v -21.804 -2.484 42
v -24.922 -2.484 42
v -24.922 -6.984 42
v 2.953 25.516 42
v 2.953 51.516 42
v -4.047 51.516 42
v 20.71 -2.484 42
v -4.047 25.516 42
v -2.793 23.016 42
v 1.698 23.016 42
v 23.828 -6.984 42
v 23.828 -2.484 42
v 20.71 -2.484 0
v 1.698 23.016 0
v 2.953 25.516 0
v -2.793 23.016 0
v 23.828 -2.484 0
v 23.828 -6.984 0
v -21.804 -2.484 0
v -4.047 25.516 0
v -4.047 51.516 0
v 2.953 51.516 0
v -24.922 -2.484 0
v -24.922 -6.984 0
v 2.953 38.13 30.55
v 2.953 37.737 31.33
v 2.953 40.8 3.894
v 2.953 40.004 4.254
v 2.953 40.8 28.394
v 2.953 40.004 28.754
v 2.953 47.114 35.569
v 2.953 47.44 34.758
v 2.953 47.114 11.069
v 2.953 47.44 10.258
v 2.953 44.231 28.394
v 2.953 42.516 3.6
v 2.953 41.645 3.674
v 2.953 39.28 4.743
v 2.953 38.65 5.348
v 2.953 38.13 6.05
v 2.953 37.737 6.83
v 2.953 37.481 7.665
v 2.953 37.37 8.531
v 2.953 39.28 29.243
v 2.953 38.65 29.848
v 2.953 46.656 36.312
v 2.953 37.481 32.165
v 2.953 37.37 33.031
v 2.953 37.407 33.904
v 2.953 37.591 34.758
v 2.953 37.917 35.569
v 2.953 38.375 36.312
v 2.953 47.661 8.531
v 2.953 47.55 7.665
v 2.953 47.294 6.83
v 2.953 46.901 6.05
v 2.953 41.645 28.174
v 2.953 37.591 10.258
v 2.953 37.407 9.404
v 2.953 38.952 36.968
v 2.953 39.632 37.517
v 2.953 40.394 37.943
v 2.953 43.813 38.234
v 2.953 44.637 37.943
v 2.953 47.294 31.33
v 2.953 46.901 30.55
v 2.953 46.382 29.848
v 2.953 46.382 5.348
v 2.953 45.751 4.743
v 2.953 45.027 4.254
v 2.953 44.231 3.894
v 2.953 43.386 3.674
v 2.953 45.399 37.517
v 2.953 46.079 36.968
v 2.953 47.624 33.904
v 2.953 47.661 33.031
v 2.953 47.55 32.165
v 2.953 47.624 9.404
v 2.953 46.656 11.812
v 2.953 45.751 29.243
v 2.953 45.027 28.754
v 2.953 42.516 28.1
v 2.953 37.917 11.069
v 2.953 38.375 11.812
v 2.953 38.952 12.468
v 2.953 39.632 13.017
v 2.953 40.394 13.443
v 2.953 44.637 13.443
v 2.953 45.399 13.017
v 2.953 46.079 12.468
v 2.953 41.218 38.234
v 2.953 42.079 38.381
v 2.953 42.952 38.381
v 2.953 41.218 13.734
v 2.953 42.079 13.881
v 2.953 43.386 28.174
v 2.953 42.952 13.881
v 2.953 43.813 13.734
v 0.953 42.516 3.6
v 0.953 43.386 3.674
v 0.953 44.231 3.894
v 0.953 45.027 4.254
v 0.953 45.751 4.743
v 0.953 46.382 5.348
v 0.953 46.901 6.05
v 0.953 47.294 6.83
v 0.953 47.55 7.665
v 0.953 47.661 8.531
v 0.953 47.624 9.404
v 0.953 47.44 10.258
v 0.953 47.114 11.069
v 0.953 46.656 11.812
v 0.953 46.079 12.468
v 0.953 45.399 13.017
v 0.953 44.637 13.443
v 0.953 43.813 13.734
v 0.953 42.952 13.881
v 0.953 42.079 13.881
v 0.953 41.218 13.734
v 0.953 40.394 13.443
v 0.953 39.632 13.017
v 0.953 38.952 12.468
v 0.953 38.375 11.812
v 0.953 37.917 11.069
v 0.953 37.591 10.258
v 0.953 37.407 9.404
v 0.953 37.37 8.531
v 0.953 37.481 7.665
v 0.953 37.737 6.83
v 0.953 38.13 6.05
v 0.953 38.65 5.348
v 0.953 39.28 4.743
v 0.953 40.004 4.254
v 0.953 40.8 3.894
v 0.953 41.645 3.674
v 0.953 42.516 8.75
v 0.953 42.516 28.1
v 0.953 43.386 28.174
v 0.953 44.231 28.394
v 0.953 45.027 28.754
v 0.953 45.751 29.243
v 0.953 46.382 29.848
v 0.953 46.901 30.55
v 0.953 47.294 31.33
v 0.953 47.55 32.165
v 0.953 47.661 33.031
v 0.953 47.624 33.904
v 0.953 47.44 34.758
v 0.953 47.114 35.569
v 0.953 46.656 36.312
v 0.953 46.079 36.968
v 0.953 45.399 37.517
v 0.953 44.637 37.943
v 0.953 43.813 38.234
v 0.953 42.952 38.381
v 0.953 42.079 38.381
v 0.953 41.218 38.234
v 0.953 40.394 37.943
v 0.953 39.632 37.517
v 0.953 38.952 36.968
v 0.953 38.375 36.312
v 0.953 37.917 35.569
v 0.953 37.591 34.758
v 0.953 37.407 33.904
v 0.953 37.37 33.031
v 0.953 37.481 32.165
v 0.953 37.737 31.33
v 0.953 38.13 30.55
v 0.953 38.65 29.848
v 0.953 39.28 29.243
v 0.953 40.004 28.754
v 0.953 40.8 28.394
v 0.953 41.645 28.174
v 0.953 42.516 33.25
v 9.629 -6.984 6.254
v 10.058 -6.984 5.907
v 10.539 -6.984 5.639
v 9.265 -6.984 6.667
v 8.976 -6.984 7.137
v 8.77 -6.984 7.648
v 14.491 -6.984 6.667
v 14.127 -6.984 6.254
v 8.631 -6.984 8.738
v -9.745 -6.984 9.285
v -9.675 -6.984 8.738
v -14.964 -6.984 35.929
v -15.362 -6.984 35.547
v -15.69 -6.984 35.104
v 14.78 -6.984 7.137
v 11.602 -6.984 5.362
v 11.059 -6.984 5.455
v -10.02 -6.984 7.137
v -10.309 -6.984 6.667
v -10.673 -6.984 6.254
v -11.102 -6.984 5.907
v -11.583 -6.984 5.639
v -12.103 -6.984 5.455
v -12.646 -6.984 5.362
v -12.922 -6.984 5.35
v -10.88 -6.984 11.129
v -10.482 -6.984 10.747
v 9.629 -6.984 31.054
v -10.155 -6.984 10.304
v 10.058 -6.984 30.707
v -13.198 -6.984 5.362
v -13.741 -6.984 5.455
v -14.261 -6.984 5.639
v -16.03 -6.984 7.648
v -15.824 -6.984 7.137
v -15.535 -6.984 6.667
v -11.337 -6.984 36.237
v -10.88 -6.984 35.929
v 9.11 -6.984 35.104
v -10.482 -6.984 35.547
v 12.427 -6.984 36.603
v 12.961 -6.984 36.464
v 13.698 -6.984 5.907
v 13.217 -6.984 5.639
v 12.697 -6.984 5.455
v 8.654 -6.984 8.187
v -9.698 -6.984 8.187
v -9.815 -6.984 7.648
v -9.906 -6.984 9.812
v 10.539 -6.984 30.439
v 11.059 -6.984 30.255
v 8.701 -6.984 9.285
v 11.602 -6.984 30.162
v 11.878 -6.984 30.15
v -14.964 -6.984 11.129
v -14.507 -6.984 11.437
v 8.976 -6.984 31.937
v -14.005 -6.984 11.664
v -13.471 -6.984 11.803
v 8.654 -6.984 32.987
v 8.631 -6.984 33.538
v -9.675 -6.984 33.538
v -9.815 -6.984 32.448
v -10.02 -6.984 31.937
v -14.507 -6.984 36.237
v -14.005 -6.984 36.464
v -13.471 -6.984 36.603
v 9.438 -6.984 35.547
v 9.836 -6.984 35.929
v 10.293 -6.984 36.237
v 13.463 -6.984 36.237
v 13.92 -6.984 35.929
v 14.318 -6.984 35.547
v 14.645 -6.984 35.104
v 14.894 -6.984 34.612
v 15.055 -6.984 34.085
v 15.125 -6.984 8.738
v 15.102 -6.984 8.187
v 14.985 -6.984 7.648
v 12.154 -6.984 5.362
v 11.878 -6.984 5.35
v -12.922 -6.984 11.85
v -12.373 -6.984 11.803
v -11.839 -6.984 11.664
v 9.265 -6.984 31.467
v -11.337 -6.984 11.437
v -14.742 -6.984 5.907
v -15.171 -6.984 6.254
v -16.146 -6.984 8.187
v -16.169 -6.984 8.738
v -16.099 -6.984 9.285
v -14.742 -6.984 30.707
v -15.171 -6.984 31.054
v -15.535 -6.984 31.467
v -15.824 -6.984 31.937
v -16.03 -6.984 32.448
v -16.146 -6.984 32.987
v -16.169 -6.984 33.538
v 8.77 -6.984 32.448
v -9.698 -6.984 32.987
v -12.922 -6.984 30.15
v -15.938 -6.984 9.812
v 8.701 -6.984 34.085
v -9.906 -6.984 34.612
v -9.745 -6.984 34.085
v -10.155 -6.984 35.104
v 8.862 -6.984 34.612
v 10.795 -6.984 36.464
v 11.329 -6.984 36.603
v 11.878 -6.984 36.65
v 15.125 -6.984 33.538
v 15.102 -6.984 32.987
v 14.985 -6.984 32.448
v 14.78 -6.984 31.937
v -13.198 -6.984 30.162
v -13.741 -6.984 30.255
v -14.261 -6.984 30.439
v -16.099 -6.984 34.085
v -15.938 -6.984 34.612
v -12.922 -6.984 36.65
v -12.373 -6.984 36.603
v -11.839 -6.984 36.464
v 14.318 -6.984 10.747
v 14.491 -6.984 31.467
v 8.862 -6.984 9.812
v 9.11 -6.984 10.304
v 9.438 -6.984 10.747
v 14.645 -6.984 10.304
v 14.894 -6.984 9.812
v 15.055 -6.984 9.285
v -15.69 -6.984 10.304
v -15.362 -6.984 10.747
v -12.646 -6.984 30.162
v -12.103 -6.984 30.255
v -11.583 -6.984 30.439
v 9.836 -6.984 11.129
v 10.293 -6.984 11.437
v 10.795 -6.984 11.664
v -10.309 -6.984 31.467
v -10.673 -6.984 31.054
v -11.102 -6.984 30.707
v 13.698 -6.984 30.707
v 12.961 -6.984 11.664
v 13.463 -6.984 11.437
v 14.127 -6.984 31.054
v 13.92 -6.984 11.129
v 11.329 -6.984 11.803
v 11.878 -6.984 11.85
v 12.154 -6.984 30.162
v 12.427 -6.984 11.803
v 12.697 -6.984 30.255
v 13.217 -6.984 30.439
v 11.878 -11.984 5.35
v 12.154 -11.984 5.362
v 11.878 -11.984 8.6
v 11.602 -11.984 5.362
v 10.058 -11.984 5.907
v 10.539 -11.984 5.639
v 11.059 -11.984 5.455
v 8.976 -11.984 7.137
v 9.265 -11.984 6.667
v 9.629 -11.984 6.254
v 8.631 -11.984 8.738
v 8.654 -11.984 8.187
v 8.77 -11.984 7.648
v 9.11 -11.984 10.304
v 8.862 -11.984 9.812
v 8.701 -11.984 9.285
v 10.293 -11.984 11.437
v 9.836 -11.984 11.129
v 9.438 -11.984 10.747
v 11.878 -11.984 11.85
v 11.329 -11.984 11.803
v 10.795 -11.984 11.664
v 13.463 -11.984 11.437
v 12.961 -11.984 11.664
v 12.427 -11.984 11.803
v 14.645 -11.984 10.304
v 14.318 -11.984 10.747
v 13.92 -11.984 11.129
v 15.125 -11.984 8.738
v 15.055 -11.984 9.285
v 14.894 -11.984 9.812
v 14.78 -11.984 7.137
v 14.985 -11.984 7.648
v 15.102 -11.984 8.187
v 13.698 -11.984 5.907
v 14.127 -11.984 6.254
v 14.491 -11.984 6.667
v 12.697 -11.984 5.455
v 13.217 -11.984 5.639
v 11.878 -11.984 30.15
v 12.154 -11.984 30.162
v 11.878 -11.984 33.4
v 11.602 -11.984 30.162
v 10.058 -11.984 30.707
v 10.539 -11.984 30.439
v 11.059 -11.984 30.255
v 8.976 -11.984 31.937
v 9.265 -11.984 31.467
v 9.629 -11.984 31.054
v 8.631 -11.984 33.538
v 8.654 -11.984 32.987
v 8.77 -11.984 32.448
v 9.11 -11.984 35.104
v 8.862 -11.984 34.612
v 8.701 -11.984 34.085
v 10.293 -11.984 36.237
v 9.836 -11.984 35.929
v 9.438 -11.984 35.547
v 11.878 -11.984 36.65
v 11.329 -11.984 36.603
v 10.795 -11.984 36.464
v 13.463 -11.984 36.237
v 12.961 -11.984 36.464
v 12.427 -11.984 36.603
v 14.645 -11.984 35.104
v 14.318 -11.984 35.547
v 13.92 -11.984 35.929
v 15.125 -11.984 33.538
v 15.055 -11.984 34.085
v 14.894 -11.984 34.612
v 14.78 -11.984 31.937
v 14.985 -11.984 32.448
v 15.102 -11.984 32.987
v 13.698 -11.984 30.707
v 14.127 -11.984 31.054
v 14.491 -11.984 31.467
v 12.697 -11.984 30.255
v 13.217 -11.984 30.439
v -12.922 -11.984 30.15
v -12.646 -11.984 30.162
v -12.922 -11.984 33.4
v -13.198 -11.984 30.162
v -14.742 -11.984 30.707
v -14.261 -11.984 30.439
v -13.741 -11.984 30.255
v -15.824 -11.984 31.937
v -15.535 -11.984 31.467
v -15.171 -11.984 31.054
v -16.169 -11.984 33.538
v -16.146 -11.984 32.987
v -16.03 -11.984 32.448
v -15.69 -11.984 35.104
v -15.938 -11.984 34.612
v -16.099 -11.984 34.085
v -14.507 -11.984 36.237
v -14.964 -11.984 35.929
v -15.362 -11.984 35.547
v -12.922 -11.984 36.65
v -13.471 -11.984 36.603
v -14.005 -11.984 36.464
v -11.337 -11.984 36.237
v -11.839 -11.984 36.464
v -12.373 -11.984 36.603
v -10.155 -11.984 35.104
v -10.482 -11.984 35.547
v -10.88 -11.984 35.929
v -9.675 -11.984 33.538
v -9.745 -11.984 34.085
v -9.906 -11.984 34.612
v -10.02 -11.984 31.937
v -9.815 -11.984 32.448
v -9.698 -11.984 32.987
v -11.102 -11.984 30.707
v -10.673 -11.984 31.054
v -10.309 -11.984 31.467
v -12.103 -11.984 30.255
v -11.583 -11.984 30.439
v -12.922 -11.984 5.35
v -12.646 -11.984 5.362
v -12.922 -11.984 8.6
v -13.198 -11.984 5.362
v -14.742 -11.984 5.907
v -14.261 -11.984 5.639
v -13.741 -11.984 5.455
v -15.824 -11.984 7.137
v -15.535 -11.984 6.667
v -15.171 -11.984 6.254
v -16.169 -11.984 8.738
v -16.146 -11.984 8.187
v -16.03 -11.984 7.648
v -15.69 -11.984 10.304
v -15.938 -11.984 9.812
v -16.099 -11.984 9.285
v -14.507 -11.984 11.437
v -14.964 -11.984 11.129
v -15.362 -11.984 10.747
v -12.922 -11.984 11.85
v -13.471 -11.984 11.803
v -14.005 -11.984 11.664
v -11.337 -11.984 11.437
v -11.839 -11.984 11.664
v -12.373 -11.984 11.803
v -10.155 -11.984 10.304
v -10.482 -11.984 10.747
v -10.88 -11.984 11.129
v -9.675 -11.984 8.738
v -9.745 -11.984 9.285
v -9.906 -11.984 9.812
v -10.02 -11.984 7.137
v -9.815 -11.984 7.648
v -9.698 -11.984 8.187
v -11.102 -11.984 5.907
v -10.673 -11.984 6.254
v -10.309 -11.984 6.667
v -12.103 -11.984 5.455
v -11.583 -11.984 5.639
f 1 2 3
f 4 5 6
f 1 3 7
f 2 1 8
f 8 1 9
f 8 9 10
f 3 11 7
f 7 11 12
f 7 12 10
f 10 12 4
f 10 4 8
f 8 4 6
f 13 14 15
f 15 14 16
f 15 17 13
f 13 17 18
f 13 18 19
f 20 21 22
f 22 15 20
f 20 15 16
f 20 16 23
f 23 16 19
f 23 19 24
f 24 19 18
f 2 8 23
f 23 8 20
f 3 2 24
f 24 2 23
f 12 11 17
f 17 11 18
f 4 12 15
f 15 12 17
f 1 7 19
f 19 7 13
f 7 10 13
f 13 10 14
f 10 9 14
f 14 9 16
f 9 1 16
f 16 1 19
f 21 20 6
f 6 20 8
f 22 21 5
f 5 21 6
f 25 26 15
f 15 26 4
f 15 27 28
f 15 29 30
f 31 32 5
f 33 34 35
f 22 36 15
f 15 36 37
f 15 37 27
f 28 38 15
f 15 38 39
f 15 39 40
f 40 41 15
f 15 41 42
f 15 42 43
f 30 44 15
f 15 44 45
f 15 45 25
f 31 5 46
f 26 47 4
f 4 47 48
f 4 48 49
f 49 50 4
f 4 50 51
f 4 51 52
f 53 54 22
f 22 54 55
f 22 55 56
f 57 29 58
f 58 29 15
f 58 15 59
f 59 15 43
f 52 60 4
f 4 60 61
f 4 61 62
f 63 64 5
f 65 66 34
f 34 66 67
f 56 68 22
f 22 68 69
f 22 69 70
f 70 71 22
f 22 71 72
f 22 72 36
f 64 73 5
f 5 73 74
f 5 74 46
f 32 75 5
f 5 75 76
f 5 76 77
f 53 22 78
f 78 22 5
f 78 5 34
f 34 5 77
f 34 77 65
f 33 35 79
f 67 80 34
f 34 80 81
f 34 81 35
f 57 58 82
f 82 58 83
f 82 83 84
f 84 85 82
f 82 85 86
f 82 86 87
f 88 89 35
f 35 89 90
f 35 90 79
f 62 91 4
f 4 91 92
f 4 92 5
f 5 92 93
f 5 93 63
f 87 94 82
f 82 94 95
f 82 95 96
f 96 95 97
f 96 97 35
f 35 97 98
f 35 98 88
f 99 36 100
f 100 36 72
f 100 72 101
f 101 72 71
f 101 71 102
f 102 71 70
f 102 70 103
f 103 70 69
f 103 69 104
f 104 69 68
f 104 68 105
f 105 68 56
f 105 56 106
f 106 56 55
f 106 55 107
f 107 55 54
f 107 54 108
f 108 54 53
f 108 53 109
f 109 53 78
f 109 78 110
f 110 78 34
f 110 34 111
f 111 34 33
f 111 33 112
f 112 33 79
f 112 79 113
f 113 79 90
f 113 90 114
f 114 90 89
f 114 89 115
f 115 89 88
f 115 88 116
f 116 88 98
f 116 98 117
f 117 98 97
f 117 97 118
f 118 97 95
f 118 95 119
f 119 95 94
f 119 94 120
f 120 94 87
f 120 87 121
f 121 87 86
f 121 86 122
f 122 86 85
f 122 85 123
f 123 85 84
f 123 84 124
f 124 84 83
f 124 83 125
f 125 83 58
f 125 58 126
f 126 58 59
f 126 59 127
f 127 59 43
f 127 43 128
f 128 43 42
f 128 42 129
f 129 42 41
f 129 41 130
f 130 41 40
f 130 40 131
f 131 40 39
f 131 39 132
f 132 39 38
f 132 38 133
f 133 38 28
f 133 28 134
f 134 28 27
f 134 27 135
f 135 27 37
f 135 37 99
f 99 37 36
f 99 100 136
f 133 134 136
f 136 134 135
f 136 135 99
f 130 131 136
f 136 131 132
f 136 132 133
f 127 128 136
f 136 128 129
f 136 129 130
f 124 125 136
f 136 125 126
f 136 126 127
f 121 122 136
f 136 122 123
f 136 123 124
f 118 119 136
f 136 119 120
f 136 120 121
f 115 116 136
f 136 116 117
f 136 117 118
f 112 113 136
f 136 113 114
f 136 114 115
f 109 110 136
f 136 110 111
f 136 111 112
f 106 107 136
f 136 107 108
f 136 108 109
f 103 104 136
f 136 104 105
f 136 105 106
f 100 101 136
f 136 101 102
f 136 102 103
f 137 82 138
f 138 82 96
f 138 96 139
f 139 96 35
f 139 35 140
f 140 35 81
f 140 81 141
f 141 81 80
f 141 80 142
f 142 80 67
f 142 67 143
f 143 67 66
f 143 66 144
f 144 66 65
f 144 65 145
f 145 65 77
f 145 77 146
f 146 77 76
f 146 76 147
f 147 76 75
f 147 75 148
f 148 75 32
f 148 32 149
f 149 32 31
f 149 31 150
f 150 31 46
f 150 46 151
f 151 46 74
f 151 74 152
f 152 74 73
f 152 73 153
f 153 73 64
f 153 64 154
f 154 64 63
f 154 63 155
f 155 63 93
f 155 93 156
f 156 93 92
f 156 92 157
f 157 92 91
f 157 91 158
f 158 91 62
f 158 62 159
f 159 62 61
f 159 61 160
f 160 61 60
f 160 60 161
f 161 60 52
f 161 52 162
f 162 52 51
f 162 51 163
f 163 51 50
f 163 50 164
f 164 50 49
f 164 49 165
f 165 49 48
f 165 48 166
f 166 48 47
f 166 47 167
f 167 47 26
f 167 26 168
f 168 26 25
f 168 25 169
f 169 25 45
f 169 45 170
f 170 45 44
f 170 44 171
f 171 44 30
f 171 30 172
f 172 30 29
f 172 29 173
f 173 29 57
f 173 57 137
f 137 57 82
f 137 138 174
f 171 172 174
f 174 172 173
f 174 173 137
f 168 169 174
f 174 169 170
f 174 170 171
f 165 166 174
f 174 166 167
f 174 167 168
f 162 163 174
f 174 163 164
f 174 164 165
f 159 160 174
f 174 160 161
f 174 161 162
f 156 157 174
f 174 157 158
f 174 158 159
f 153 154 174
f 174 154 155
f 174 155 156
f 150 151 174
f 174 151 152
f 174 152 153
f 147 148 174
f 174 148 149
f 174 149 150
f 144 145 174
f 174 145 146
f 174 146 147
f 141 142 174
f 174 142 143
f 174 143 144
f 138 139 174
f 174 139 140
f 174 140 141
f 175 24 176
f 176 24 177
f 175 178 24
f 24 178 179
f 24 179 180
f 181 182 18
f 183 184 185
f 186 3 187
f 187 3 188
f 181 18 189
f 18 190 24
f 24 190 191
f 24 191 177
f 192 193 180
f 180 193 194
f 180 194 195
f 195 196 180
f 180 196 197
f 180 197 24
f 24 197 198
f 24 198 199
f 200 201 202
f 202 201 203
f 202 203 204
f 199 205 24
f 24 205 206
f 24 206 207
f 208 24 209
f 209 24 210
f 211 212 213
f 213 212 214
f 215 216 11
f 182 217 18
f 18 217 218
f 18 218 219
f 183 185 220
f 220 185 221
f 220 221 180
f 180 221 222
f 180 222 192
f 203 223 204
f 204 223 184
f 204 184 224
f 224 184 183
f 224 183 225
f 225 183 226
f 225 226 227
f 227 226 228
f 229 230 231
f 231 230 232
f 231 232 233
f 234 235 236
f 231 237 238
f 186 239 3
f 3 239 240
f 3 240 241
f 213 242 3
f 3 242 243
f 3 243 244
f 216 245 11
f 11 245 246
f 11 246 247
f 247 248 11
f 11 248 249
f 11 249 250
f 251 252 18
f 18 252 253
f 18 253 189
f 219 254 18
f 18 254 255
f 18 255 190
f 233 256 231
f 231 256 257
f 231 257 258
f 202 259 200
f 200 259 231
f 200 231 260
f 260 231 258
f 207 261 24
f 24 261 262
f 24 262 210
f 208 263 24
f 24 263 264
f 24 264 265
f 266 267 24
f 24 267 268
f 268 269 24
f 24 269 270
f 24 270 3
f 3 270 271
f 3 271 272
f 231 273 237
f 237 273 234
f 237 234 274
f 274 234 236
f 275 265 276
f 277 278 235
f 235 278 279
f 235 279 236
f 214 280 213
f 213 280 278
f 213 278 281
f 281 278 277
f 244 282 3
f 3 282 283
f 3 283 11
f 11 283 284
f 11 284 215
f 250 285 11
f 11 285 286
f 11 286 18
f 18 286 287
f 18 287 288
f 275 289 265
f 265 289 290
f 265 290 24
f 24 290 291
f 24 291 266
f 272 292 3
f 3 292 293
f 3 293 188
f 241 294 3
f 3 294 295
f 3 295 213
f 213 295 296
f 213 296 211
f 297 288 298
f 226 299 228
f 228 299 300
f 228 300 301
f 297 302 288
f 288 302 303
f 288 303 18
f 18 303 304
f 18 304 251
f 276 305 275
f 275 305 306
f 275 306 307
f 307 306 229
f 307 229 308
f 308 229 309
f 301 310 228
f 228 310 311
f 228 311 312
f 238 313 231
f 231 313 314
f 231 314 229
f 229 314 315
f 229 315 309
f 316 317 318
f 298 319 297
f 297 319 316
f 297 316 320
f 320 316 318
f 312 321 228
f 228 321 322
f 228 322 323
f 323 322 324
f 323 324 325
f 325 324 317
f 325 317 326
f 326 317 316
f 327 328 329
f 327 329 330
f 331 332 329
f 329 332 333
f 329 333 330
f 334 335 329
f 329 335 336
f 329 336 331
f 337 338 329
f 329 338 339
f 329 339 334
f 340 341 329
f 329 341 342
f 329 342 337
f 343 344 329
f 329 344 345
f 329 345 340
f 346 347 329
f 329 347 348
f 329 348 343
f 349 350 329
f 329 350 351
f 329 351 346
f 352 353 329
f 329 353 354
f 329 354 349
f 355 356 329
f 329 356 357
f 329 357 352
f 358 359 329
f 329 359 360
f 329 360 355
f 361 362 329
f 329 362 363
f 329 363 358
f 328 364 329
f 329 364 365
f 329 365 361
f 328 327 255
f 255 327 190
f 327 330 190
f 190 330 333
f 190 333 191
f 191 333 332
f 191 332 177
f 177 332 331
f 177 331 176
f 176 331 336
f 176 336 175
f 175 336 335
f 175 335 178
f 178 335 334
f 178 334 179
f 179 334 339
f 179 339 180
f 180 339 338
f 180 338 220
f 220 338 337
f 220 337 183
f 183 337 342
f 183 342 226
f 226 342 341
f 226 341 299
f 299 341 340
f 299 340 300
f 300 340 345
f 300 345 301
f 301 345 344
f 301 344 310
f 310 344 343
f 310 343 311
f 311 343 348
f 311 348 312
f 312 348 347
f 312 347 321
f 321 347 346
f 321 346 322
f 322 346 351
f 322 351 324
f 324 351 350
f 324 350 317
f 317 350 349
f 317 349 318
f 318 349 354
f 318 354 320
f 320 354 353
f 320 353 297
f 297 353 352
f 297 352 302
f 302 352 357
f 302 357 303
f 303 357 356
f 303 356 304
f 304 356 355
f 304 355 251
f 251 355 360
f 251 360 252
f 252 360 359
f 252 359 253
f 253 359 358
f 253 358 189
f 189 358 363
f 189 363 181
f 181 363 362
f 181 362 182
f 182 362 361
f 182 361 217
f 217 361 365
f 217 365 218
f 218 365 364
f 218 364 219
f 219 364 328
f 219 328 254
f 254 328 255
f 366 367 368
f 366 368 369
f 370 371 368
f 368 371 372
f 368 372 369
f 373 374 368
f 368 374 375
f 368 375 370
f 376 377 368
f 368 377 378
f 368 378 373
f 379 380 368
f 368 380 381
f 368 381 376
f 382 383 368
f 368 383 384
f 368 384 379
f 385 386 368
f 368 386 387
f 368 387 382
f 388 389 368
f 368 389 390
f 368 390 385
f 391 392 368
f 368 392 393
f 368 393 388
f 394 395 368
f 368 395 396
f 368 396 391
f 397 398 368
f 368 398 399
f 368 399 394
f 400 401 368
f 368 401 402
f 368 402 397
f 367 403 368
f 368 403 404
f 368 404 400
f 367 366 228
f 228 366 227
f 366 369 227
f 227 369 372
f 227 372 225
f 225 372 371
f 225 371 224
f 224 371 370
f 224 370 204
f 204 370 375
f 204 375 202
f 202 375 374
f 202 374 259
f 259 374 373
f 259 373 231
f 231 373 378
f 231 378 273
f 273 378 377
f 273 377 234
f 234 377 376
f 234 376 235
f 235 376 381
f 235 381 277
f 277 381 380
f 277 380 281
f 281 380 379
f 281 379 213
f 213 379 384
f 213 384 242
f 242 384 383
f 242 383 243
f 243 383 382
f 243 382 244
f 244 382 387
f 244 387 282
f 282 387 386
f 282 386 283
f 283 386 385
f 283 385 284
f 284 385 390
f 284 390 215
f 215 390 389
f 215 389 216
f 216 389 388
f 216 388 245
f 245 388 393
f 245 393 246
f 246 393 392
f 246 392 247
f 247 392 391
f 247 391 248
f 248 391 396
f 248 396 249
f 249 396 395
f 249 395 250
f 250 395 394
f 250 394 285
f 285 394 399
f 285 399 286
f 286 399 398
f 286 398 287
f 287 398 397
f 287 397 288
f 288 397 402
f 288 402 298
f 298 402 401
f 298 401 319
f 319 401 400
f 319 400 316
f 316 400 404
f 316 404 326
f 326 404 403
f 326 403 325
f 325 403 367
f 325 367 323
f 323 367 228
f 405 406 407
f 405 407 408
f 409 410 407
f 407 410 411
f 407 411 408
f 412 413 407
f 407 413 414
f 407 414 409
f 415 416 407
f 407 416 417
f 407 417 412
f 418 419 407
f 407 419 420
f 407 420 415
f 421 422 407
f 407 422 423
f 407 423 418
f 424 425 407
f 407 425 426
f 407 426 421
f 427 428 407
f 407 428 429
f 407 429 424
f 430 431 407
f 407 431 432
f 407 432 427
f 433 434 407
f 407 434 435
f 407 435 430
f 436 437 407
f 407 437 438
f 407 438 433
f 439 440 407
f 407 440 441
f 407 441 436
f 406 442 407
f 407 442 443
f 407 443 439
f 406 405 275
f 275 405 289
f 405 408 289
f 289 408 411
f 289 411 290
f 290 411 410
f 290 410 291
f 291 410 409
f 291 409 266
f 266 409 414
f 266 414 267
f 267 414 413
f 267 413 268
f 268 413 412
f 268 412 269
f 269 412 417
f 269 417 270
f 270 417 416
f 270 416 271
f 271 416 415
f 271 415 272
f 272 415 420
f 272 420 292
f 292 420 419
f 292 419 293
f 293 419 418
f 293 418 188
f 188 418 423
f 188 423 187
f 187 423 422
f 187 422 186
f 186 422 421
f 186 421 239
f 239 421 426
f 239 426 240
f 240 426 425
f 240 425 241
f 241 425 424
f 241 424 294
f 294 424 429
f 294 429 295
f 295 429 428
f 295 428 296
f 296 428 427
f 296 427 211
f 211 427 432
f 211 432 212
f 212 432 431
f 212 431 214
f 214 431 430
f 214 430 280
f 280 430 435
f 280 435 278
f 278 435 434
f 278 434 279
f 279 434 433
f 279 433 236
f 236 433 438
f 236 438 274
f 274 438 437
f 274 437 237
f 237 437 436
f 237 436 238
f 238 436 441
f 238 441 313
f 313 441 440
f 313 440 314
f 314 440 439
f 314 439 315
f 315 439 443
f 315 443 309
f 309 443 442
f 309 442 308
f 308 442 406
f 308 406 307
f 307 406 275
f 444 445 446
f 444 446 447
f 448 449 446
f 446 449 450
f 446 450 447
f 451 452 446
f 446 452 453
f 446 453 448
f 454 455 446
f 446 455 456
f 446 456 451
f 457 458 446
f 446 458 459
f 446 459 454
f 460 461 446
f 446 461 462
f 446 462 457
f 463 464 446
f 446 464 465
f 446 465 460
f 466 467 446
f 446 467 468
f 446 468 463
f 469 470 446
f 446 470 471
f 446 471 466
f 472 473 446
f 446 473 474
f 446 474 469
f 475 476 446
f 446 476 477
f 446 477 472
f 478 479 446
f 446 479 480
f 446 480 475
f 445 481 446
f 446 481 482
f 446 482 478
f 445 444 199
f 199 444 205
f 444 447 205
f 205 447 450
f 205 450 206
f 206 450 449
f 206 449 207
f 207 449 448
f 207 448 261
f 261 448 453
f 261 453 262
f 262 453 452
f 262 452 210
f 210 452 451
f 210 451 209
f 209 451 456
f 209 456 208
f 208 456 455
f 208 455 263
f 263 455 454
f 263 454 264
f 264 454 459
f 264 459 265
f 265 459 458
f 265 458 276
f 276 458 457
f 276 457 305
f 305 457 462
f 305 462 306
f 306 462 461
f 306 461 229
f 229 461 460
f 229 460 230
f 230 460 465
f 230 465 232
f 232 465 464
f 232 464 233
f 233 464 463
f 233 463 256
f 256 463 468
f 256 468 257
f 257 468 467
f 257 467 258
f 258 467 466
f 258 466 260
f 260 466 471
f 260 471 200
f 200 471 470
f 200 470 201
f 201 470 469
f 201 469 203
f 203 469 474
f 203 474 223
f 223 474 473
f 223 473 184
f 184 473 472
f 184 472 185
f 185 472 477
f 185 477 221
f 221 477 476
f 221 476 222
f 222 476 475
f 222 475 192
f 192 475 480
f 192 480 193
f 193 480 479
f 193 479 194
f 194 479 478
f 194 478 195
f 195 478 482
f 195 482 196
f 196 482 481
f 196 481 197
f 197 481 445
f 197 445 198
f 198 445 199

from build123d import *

# Parameters (mm, degrees)
BOSS_EXTRUDE1_DEPTH = 42
SKETCH2_W           = 7
SKETCH2_H           = 26
BOSS_EXTRUDE2_DEPTH = 42
SKETCH3_R           = 5.15
CUT_EXTRUDE1_DEPTH  = 2
SKETCH4_R           = 3.25
BOSS_EXTRUDE3_DEPTH = 7
SKETCH5_W           = 48.75
SKETCH5_H           = 2
BOSS_EXTRUDE4_DEPTH = 42


with BuildPart() as part:
    # Sketch1 → Boss-Extrude1 (new body)
    with BuildSketch(Plane.XY):
        Polygon((-24.92211838, -2.484423676), (-24.92211838, -4.984423676), (23.82788162, -4.984423676), (23.82788162, -2.484423676), (2.95288162, 25.515576324), (-4.04711838, 25.515576324), align=None)
        Polygon((-21.803802026, -2.484423676), (-2.792641312, 23.015576324), (1.698404552, 23.015576324), (20.709565266, -2.484423676), align=None, mode=Mode.SUBTRACT)
    extrude(amount=BOSS_EXTRUDE1_DEPTH)

    # Sketch2 → Boss-Extrude2 (add)
    with BuildSketch(Plane.XY.offset(42)):
        with Locations((-0.54711838, 38.515576324)):
            Rectangle(SKETCH2_W, SKETCH2_H)
    extrude(amount=-BOSS_EXTRUDE2_DEPTH)

    # Sketch3 → Cut-Extrude1 (cut)
    with BuildSketch(Plane(origin=(2.95288162, 0, 0), x_dir=(0, 0, -1), z_dir=(1, 0, 0))):
        with Locations((-33.25, 42.515576324)):
            Circle(SKETCH3_R)
        with Locations((-8.75, 42.515576324)):
            Circle(SKETCH3_R)
    extrude(amount=-CUT_EXTRUDE1_DEPTH, mode=Mode.SUBTRACT)

    # Sketch4 → Boss-Extrude3 (add)
    with BuildSketch(Plane.XZ.offset(4.984423676)):
        with Locations((-12.92211838, 33.4)):
            Circle(SKETCH4_R)
        with Locations((11.87788162, 33.4)):
            Circle(SKETCH4_R)
        with Locations((11.87788162, 8.6)):
            Circle(SKETCH4_R)
        with Locations((-12.92211838, 8.6)):
            Circle(SKETCH4_R)
    extrude(amount=BOSS_EXTRUDE3_DEPTH)

    # Sketch5 → Boss-Extrude4 (add)
    with BuildSketch(Plane.XY.offset(42)):
        with Locations((-0.54711838, -5.984423676)):
            Rectangle(SKETCH5_W, SKETCH5_H)
    extrude(amount=-BOSS_EXTRUDE4_DEPTH)


solid = part.part
